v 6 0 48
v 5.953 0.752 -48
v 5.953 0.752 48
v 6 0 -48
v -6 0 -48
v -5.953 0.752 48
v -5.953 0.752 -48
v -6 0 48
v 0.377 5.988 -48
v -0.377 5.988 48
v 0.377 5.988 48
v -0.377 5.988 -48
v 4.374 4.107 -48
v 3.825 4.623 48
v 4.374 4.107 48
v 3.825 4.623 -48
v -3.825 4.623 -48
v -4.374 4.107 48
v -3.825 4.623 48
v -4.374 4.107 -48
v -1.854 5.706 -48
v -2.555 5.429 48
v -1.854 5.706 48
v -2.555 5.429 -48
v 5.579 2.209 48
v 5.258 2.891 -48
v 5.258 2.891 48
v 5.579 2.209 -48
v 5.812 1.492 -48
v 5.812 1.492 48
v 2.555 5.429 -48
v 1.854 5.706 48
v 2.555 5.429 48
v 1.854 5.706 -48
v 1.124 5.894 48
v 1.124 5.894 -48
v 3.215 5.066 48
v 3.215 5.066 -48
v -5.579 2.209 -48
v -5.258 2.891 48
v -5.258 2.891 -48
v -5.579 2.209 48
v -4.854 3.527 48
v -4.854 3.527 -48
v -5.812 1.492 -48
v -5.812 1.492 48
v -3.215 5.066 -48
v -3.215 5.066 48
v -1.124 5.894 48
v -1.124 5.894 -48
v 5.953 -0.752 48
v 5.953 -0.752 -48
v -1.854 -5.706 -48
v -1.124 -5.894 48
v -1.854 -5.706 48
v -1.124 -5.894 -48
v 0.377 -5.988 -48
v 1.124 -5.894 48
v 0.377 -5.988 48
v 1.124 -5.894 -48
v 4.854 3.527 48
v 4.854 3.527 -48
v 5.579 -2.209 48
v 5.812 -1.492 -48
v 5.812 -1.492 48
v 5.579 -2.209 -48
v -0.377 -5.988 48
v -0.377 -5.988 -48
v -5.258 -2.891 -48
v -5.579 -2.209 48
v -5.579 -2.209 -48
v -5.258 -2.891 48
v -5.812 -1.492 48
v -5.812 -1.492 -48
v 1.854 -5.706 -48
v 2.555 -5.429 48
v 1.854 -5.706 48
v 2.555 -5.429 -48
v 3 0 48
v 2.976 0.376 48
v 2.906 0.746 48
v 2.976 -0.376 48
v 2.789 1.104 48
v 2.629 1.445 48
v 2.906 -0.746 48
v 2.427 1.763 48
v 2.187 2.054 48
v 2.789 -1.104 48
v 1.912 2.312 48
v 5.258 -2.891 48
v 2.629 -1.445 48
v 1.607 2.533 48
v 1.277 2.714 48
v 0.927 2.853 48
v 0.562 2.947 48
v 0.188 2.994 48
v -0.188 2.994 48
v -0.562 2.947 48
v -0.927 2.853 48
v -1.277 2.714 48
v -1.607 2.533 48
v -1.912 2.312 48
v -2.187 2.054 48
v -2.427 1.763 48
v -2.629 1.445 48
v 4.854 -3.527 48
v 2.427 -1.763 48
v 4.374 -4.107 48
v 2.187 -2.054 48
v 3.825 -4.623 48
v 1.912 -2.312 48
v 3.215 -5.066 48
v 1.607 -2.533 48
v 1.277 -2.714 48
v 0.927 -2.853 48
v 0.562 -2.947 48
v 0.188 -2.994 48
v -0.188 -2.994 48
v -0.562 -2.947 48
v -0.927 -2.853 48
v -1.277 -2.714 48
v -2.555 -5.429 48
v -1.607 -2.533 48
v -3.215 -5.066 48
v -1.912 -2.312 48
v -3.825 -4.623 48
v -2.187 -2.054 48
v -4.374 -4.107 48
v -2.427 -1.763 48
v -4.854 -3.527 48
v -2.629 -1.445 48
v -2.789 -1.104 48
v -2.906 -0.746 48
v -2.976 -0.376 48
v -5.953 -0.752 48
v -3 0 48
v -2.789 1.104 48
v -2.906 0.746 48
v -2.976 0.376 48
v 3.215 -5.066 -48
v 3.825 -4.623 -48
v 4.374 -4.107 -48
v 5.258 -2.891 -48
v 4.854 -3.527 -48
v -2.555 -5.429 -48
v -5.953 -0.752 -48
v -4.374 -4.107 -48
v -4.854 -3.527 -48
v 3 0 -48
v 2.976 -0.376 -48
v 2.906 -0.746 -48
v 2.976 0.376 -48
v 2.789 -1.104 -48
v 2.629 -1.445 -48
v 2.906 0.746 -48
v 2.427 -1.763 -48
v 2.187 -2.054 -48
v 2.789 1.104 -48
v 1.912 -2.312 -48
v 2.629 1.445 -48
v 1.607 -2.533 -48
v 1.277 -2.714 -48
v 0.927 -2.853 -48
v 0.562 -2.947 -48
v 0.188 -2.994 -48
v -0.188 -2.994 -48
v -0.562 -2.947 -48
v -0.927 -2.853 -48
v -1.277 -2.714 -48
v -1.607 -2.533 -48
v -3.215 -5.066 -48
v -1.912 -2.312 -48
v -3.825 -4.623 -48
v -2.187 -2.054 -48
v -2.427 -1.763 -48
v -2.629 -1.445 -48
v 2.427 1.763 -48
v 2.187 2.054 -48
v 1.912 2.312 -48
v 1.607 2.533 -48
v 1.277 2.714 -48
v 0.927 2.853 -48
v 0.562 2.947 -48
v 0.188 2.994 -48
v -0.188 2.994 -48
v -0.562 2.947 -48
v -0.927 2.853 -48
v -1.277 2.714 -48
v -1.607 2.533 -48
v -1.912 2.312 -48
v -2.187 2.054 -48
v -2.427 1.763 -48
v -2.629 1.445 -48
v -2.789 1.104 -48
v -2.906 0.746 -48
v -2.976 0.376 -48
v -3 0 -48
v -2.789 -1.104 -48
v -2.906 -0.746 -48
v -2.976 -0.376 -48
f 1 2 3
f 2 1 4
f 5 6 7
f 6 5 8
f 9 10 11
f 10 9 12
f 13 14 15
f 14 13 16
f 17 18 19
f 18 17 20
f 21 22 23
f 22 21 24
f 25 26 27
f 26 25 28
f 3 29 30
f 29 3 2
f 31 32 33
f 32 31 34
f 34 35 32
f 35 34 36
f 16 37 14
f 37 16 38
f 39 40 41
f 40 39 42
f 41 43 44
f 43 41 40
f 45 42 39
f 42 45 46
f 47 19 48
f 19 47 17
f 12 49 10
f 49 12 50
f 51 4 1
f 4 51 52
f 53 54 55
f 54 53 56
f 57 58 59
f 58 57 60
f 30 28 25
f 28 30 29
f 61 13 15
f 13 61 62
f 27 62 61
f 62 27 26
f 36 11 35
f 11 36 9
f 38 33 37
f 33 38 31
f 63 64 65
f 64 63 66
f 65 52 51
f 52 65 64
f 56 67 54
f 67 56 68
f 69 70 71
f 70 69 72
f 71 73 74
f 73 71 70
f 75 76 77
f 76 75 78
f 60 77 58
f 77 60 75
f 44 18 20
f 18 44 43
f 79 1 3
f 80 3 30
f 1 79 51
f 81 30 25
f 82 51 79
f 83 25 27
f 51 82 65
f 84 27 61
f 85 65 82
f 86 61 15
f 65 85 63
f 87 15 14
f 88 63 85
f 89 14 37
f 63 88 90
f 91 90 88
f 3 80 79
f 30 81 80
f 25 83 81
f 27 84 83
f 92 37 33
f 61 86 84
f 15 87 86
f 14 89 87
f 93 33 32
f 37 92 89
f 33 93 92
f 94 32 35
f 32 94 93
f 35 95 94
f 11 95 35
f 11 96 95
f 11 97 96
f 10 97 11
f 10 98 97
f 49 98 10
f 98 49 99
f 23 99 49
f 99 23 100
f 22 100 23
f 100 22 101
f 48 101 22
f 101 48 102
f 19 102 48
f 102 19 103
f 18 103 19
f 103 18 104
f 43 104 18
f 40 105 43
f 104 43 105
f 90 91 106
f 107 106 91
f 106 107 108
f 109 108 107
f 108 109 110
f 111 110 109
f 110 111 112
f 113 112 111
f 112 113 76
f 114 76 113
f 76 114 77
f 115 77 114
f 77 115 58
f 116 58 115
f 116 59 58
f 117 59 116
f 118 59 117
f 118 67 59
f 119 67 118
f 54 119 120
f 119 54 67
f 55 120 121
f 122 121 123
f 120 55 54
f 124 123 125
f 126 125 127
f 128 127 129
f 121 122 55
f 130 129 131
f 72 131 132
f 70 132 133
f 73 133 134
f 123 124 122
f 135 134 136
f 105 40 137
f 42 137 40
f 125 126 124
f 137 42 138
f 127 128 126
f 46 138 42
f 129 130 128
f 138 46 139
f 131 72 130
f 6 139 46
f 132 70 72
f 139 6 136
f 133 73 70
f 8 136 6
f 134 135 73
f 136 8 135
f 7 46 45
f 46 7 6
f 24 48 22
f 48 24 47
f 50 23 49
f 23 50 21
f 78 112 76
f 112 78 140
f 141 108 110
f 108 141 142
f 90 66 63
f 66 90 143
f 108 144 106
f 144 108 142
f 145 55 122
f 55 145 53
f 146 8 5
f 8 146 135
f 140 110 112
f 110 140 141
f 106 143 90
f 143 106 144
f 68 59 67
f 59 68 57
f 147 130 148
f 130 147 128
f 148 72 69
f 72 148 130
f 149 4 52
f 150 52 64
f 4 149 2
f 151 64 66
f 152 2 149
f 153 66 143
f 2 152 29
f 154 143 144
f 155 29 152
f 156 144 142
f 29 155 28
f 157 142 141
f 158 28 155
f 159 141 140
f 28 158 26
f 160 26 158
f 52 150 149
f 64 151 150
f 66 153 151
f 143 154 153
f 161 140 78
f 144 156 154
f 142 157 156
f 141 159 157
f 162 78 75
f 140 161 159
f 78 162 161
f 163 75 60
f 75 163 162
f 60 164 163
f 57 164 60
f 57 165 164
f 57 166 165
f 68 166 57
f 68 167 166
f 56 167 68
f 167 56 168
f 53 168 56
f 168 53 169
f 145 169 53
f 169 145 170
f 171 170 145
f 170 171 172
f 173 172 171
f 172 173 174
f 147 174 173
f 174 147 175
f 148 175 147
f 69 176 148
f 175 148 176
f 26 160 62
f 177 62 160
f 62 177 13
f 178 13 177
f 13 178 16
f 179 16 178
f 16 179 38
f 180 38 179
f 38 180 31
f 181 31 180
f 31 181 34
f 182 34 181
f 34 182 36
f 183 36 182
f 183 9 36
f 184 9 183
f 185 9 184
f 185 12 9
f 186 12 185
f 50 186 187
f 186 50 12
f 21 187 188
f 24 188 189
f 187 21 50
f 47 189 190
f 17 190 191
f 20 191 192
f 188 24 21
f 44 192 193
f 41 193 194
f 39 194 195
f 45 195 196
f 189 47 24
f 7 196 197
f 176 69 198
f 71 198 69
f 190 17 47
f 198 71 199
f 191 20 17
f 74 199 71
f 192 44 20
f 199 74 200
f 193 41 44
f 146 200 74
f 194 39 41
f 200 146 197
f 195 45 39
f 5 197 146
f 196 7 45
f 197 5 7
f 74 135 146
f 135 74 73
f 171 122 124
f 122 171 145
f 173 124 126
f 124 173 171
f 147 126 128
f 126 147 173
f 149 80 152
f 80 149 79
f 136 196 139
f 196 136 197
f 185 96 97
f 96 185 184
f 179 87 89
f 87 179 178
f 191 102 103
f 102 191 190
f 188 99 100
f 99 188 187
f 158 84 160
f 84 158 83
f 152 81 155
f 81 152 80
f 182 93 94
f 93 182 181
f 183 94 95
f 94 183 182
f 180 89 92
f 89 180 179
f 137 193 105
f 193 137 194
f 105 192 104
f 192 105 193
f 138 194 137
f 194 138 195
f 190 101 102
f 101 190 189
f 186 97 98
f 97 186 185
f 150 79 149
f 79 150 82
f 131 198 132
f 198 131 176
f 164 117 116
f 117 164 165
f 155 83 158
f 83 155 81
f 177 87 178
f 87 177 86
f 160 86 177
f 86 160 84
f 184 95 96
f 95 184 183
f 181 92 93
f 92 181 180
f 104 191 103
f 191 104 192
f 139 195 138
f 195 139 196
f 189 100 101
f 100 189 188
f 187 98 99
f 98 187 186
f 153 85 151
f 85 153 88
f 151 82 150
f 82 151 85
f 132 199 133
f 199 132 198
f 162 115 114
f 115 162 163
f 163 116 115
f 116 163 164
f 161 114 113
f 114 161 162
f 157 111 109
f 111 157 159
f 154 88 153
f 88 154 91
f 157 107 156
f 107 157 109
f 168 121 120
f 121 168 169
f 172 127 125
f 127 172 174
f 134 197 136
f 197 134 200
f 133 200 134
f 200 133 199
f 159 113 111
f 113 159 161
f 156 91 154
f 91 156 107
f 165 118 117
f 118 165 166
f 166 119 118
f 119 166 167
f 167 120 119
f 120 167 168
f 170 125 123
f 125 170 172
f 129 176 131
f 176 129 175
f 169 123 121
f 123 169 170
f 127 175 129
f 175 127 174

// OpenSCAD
$fn = 50;


difference() {
	union() {
		translate(v = [0, 0, -48.0000000000]) {
			cylinder(h = 96, r = 6.0000000000);
		}
	}
	union() {
		translate(v = [0, 0, -100.0000000000]) {
			cylinder(h = 200, r = 3.0000000000);
		}
	}
}
